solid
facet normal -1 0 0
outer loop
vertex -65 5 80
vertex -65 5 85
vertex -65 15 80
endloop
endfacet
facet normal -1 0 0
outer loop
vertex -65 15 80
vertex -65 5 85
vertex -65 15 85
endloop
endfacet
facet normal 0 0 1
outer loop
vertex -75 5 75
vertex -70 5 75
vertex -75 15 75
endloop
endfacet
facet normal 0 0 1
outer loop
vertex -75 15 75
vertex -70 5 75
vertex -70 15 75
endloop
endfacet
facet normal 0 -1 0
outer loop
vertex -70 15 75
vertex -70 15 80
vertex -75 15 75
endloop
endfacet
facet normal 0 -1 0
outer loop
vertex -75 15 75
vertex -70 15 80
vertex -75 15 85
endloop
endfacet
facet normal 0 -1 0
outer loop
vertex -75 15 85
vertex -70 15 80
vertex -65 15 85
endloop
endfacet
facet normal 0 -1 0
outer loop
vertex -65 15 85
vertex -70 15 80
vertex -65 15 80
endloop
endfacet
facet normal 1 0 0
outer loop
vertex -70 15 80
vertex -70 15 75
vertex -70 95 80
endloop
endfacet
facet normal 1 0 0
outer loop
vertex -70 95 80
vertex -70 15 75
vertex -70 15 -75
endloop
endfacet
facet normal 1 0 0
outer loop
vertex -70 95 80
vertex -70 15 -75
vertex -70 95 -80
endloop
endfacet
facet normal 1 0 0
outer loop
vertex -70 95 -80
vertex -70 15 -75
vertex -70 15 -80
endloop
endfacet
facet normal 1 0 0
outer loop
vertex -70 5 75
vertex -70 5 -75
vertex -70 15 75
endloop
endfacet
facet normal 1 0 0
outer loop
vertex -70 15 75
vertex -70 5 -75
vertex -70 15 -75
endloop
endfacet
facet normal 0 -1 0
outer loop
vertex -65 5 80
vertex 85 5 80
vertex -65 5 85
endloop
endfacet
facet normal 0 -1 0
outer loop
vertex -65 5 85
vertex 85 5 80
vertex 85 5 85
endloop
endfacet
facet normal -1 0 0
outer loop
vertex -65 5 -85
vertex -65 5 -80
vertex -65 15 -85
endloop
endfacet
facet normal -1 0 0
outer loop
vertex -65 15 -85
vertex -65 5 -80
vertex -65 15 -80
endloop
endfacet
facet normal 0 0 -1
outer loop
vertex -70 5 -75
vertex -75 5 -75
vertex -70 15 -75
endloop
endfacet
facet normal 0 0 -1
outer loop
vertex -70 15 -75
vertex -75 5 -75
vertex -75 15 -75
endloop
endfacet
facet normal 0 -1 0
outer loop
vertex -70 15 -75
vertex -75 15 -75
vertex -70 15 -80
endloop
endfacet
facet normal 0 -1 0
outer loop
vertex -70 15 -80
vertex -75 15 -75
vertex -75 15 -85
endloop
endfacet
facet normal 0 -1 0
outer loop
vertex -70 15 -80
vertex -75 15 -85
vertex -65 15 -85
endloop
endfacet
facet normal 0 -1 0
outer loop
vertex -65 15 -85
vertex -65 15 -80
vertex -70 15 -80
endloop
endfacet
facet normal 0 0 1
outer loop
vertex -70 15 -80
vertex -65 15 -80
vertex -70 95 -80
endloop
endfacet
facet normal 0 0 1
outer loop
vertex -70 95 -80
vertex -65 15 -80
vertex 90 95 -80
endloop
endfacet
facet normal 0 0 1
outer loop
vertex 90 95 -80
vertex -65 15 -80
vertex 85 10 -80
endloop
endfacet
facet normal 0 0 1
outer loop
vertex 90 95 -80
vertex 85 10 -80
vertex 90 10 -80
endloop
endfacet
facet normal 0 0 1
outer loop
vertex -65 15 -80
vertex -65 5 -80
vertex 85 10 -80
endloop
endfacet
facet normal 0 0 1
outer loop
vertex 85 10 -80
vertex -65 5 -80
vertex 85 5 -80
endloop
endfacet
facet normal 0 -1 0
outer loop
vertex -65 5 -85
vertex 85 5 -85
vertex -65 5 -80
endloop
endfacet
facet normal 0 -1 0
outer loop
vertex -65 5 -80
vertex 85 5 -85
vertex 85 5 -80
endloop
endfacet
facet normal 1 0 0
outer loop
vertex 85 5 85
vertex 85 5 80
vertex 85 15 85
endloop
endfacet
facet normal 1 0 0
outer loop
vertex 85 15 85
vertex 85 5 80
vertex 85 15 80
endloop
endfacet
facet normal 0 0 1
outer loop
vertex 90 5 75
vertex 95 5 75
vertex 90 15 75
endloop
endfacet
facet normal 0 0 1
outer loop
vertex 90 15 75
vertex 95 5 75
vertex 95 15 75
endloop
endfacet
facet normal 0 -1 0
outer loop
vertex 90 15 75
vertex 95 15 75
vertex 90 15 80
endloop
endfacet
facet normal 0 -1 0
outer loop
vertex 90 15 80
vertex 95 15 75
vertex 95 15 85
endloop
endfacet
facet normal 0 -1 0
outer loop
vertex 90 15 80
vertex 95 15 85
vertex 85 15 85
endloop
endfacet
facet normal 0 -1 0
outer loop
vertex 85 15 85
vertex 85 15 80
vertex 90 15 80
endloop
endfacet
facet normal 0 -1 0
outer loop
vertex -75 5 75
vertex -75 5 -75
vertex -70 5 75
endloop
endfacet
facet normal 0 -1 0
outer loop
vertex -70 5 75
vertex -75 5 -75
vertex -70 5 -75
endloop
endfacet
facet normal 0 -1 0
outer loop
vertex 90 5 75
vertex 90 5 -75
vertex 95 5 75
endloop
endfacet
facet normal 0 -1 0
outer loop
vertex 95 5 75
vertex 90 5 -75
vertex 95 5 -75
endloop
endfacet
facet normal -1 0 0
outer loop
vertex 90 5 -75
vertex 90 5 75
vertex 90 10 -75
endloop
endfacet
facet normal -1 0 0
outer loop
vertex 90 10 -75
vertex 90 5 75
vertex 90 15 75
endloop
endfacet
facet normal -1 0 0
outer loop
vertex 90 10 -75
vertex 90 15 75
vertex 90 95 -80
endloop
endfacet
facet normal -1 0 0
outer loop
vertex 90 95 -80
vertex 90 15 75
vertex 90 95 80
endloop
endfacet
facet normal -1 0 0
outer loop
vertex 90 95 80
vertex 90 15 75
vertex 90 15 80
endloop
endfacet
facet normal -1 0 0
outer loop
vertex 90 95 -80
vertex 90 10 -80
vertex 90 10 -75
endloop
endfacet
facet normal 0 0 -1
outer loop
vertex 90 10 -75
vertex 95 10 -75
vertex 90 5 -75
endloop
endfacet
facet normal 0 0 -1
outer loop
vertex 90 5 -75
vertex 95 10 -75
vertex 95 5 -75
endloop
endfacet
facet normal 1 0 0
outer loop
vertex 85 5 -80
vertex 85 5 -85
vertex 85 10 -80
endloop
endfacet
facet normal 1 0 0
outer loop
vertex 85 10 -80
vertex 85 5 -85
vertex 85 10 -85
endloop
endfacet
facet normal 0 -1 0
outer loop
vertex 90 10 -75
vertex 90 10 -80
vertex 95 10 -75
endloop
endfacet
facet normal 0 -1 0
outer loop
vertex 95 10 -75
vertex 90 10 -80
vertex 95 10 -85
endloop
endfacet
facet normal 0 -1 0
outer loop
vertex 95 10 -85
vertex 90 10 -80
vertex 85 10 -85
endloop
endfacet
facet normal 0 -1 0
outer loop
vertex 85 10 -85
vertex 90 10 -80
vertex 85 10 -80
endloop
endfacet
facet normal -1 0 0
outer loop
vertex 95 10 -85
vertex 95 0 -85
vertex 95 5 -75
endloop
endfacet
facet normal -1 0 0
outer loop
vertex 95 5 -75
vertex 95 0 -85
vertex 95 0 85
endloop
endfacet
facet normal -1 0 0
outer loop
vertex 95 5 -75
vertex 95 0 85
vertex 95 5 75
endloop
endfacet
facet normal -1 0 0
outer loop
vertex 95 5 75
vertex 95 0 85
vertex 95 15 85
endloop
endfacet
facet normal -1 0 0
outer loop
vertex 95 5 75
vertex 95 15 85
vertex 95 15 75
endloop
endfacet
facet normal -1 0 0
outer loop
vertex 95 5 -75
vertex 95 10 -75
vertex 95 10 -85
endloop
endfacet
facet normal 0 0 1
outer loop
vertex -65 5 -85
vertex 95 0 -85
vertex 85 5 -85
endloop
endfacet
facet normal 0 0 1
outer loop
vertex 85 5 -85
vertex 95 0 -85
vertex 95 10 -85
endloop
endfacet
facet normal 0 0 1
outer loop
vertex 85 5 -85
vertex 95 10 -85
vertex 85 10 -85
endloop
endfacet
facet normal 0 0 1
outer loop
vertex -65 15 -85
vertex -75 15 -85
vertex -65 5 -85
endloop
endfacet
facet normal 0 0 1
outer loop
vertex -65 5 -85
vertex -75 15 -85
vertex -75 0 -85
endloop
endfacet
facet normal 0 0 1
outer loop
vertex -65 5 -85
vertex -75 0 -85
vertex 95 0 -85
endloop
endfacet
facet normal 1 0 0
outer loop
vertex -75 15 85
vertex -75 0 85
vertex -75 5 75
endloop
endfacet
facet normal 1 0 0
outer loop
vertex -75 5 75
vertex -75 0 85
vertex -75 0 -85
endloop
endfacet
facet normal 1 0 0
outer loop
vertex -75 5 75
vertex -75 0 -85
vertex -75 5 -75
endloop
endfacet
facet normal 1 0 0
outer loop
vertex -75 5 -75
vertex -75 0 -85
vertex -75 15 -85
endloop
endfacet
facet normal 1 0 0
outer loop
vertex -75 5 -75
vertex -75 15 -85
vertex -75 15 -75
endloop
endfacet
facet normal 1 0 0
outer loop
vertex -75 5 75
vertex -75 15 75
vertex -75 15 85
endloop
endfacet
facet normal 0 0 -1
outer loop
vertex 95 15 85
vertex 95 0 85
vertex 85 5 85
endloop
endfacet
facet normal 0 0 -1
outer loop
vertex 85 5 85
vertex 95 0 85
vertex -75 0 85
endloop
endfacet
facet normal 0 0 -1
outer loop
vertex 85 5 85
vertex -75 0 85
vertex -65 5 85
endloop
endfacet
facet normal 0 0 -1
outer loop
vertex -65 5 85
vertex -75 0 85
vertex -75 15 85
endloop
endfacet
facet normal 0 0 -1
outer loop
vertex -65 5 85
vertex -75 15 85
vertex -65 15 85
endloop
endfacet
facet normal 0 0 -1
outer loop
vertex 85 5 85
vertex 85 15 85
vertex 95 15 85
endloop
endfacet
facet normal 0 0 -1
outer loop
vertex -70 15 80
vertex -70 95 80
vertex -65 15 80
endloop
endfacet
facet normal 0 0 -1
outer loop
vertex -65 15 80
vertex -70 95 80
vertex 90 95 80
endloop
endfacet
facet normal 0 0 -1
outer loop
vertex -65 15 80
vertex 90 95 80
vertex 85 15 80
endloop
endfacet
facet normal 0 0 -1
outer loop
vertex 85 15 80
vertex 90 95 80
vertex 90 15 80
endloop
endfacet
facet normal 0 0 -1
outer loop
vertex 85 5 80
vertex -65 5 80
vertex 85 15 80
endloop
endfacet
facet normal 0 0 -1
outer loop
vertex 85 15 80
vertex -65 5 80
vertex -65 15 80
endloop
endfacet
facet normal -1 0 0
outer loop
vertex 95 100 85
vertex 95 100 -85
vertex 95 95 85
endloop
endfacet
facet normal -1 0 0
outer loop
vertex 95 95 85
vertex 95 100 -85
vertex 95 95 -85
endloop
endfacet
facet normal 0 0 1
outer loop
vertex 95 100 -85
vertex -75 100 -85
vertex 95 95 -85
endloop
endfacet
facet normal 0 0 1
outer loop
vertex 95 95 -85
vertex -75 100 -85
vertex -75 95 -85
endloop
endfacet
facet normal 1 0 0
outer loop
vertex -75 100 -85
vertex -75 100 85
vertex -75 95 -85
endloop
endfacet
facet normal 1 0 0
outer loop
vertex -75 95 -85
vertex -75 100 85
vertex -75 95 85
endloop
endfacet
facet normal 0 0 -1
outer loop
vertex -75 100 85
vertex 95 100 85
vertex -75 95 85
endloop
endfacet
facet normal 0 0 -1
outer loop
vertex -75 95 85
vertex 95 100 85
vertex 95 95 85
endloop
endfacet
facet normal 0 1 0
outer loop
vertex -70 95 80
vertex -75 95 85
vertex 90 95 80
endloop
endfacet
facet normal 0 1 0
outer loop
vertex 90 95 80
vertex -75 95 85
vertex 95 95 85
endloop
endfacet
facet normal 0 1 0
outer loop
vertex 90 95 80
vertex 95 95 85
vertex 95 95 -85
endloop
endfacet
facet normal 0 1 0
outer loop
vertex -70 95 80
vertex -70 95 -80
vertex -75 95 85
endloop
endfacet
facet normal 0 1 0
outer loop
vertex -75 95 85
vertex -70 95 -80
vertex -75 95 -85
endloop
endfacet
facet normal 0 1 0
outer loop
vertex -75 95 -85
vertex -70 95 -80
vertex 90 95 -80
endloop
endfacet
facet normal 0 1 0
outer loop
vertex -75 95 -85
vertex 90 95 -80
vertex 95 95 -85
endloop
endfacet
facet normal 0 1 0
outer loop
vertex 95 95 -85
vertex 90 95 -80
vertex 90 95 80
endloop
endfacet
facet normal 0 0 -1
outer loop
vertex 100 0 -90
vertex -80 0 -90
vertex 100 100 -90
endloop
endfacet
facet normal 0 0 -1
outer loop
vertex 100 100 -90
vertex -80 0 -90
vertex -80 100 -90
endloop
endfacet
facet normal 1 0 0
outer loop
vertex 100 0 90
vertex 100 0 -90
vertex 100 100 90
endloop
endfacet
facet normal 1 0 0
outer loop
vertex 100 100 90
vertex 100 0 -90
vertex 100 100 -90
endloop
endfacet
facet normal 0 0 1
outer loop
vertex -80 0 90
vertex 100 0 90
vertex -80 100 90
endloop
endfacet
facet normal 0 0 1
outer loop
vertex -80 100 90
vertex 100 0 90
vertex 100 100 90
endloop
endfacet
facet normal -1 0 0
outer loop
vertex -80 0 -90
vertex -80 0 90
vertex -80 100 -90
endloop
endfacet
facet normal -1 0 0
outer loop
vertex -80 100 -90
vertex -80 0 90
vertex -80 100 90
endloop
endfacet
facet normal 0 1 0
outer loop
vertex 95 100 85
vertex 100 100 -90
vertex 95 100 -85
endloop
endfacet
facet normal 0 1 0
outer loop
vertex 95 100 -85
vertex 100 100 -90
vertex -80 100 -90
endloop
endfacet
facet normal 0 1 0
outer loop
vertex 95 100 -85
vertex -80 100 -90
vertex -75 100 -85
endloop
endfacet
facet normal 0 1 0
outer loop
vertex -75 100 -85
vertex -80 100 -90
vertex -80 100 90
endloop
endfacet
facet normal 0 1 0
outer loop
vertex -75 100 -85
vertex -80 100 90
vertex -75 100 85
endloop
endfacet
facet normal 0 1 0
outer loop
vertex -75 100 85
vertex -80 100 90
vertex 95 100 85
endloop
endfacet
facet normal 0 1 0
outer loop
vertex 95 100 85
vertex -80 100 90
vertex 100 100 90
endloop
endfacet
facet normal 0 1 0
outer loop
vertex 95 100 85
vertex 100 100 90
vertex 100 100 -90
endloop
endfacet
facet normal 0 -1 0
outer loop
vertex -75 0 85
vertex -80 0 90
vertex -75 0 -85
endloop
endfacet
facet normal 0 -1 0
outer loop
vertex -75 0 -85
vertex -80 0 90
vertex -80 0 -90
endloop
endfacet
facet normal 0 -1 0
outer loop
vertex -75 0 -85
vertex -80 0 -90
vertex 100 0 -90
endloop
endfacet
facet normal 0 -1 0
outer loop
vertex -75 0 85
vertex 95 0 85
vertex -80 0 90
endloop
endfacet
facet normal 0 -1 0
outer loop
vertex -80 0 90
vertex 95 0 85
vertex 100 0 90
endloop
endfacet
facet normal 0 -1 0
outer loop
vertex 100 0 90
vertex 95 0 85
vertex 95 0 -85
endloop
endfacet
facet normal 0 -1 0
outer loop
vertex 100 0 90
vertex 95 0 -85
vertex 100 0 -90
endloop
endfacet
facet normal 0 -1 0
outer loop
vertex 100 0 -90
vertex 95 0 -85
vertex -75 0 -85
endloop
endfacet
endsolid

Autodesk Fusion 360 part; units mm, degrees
sketch "Sketch2" plane through (0, 0, 0) normal (0, 1, 0) x (1, 0, 0)
  line L0 (-80, -90) -> (100, -90)
  line L1 (100, -90) -> (100, 90)
  line L2 (100, 90) -> (-80, 90)
  line L3 (-80, 90) -> (-80, -90)
  dimension "d3" = 180
  dimension "d4" = 180
extrude "Extrude1" add sketch "Sketch2" along normal blind 100
sketch "Sketch3" plane through (0, 100, 0) normal (0, 1, 0) x (-1, 0, 0)
  line L0 (80, -90) -> (80, 90)
  line L1 (80, 90) -> (-100, 90)
  line L2 (-100, 90) -> (-100, -90)
  line L3 (-100, -90) -> (80, -90)
  line L4 (75, -85) -> (-95, -85)
  line L5 (-95, -85) -> (-95, 85)
  line L6 (-95, 85) -> (75, 85)
  line L7 (75, 85) -> (75, -85)
extrude "Extrude2" cut sketch "Sketch3" against normal blind 5 contours L4 L5 L6 L7
sketch "Sketch4" plane through (0, 95, 0) normal (0, 1, 0) x (-1, 0, 0)
  line L0 (75, 85) -> (-95, 85)
  line L1 (-95, 85) -> (-95, -85)
  line L2 (-95, -85) -> (75, -85)
  line L3 (75, -85) -> (75, 85)
  line L4 (70, 80) -> (-90, 80)
  line L5 (-90, 80) -> (-90, -80)
  line L6 (-90, -80) -> (70, -80)
  line L7 (70, -80) -> (70, 80)
extrude "Extrude3" cut sketch "Sketch4" against normal blind 175 contours L4 L5 L6 L7
sketch "Sketch5" plane through (0, 0, 0) normal (0, -1, 0) x (1, 0, 0)
  line L0 (-70, 80) -> (90, 80)
  line L1 (90, 80) -> (90, -80)
  line L2 (90, -80) -> (-70, -80)
  line L3 (-70, -80) -> (-70, 80)
  line L4 (-80, 90) -> (-80, -90)
  line L5 (-80, -90) -> (100, -90)
  line L6 (100, -90) -> (100, 90)
  line L7 (100, 90) -> (-80, 90)
  line L8 (95, -85) -> (-75, -85)
  line L9 (-75, -85) -> (-75, 85)
  line L10 (-75, 85) -> (95, 85)
  line L11 (95, 85) -> (95, -85)
  point P0 (95, -85)
  point P1 (-75, 85)
extrude "Extrude4" cut sketch "Sketch5" against normal blind 5 contours L8 L9 L10 L11
sketch "Sketch6" plane through (0, 0, 0) normal (0, -1, 0) x (1, 0, 0)
  line L0 (-75, -85) -> (-75, 85)
  line L1 (-75, 85) -> (95, 85)
  line L2 (95, 85) -> (95, -85)
  line L3 (95, -85) -> (-75, -85)
  line L4 (-80, 90) -> (-80, -90)
  line L5 (-80, -90) -> (100, -90)
  line L6 (100, -90) -> (100, 90)
  line L7 (100, 90) -> (-80, 90)
  line L8 (95, -85) -> (85, -85)
  line L9 (85, -85) -> (85, -75)
  line L10 (85, -75) -> (95, -75)
  line L11 (95, -75) -> (95, -85)
  dimension "d13" = 10
extrude "Extrude5" cut sketch "Sketch6" against normal blind 10 contours L2 L3 L8 L9 L10 L11
sketch "Sketch7" plane through (0, 5, 0) normal (0, -1, 0) x (1, 0, 0)
  line L0 (90, -75) -> (95, -75)
  line L1 (95, -75) -> (95, 85)
  line L2 (95, 85) -> (-75, 85)
  line L3 (-75, 85) -> (-75, -85)
  line L4 (-75, -85) -> (85, -85)
  line L5 (85, -85) -> (85, -80)
  line L6 (85, -80) -> (-70, -80)
  line L7 (-70, -80) -> (-70, 80)
  line L8 (-70, 80) -> (90, 80)
  line L9 (90, 80) -> (90, -75)
  line L10 (95, 85) -> (85, 85)
  line L11 (85, 85) -> (85, 75)
  line L12 (85, 75) -> (95, 75)
  line L13 (95, 75) -> (95, 85)
extrude "Extrude6" cut sketch "Sketch7" against normal blind 10 contours L1 L2 L8 L9 L10 L11 L12 L13
sketch "Sketch8" plane through (0, 5, 0) normal (0, -1, 0) x (1, 0, 0)
  line L0 (85, 80) -> (85, 85)
  line L1 (85, 85) -> (-75, 85)
  line L2 (-75, 85) -> (-75, -85)
  line L3 (-75, -85) -> (85, -85)
  line L4 (85, -85) -> (85, -80)
  line L5 (85, -80) -> (-70, -80)
  line L6 (-70, -80) -> (-70, 80)
  line L7 (-70, 80) -> (85, 80)
  line L8 (-75, -85) -> (-65, -85)
  line L9 (-65, -85) -> (-65, -75)
  line L10 (-65, -75) -> (-75, -75)
  line L11 (-75, -75) -> (-75, -85)
extrude "Extrude7" cut sketch "Sketch8" against normal blind 10 contours L2 L3 L5 L6 L8 L9 L10 L11
sketch "Sketch9" plane through (0, 5, 0) normal (0, -1, 0) x (1, 0, 0)
  line L0 (-75, -75) -> (-70, -75)
  line L1 (-70, -75) -> (-70, 80)
  line L2 (-70, 80) -> (85, 80)
  line L3 (85, 80) -> (85, 85)
  line L4 (85, 85) -> (-75, 85)
  line L5 (-75, 85) -> (-75, -75)
  line L6 (-75, 85) -> (-65, 85)
  line L7 (-65, 85) -> (-65, 75)
  line L8 (-65, 75) -> (-75, 75)
  line L9 (-75, 75) -> (-75, 85)
extrude "Extrude8" cut sketch "Sketch9" against normal blind 10 contours L1 L2 L4 L5 L6 L7 L8 L9
sketch "Sketch11" plane through (-75, 0, 0) normal (1, 0, 0) x (0, 0, -1)
  line L0 (85, 100) -> (-85, 100)
  line L1 (-85, 100) -> (-85, 95)
  line L2 (-85, 95) -> (85, 95)
  line L3 (85, 95) -> (85, 100)
